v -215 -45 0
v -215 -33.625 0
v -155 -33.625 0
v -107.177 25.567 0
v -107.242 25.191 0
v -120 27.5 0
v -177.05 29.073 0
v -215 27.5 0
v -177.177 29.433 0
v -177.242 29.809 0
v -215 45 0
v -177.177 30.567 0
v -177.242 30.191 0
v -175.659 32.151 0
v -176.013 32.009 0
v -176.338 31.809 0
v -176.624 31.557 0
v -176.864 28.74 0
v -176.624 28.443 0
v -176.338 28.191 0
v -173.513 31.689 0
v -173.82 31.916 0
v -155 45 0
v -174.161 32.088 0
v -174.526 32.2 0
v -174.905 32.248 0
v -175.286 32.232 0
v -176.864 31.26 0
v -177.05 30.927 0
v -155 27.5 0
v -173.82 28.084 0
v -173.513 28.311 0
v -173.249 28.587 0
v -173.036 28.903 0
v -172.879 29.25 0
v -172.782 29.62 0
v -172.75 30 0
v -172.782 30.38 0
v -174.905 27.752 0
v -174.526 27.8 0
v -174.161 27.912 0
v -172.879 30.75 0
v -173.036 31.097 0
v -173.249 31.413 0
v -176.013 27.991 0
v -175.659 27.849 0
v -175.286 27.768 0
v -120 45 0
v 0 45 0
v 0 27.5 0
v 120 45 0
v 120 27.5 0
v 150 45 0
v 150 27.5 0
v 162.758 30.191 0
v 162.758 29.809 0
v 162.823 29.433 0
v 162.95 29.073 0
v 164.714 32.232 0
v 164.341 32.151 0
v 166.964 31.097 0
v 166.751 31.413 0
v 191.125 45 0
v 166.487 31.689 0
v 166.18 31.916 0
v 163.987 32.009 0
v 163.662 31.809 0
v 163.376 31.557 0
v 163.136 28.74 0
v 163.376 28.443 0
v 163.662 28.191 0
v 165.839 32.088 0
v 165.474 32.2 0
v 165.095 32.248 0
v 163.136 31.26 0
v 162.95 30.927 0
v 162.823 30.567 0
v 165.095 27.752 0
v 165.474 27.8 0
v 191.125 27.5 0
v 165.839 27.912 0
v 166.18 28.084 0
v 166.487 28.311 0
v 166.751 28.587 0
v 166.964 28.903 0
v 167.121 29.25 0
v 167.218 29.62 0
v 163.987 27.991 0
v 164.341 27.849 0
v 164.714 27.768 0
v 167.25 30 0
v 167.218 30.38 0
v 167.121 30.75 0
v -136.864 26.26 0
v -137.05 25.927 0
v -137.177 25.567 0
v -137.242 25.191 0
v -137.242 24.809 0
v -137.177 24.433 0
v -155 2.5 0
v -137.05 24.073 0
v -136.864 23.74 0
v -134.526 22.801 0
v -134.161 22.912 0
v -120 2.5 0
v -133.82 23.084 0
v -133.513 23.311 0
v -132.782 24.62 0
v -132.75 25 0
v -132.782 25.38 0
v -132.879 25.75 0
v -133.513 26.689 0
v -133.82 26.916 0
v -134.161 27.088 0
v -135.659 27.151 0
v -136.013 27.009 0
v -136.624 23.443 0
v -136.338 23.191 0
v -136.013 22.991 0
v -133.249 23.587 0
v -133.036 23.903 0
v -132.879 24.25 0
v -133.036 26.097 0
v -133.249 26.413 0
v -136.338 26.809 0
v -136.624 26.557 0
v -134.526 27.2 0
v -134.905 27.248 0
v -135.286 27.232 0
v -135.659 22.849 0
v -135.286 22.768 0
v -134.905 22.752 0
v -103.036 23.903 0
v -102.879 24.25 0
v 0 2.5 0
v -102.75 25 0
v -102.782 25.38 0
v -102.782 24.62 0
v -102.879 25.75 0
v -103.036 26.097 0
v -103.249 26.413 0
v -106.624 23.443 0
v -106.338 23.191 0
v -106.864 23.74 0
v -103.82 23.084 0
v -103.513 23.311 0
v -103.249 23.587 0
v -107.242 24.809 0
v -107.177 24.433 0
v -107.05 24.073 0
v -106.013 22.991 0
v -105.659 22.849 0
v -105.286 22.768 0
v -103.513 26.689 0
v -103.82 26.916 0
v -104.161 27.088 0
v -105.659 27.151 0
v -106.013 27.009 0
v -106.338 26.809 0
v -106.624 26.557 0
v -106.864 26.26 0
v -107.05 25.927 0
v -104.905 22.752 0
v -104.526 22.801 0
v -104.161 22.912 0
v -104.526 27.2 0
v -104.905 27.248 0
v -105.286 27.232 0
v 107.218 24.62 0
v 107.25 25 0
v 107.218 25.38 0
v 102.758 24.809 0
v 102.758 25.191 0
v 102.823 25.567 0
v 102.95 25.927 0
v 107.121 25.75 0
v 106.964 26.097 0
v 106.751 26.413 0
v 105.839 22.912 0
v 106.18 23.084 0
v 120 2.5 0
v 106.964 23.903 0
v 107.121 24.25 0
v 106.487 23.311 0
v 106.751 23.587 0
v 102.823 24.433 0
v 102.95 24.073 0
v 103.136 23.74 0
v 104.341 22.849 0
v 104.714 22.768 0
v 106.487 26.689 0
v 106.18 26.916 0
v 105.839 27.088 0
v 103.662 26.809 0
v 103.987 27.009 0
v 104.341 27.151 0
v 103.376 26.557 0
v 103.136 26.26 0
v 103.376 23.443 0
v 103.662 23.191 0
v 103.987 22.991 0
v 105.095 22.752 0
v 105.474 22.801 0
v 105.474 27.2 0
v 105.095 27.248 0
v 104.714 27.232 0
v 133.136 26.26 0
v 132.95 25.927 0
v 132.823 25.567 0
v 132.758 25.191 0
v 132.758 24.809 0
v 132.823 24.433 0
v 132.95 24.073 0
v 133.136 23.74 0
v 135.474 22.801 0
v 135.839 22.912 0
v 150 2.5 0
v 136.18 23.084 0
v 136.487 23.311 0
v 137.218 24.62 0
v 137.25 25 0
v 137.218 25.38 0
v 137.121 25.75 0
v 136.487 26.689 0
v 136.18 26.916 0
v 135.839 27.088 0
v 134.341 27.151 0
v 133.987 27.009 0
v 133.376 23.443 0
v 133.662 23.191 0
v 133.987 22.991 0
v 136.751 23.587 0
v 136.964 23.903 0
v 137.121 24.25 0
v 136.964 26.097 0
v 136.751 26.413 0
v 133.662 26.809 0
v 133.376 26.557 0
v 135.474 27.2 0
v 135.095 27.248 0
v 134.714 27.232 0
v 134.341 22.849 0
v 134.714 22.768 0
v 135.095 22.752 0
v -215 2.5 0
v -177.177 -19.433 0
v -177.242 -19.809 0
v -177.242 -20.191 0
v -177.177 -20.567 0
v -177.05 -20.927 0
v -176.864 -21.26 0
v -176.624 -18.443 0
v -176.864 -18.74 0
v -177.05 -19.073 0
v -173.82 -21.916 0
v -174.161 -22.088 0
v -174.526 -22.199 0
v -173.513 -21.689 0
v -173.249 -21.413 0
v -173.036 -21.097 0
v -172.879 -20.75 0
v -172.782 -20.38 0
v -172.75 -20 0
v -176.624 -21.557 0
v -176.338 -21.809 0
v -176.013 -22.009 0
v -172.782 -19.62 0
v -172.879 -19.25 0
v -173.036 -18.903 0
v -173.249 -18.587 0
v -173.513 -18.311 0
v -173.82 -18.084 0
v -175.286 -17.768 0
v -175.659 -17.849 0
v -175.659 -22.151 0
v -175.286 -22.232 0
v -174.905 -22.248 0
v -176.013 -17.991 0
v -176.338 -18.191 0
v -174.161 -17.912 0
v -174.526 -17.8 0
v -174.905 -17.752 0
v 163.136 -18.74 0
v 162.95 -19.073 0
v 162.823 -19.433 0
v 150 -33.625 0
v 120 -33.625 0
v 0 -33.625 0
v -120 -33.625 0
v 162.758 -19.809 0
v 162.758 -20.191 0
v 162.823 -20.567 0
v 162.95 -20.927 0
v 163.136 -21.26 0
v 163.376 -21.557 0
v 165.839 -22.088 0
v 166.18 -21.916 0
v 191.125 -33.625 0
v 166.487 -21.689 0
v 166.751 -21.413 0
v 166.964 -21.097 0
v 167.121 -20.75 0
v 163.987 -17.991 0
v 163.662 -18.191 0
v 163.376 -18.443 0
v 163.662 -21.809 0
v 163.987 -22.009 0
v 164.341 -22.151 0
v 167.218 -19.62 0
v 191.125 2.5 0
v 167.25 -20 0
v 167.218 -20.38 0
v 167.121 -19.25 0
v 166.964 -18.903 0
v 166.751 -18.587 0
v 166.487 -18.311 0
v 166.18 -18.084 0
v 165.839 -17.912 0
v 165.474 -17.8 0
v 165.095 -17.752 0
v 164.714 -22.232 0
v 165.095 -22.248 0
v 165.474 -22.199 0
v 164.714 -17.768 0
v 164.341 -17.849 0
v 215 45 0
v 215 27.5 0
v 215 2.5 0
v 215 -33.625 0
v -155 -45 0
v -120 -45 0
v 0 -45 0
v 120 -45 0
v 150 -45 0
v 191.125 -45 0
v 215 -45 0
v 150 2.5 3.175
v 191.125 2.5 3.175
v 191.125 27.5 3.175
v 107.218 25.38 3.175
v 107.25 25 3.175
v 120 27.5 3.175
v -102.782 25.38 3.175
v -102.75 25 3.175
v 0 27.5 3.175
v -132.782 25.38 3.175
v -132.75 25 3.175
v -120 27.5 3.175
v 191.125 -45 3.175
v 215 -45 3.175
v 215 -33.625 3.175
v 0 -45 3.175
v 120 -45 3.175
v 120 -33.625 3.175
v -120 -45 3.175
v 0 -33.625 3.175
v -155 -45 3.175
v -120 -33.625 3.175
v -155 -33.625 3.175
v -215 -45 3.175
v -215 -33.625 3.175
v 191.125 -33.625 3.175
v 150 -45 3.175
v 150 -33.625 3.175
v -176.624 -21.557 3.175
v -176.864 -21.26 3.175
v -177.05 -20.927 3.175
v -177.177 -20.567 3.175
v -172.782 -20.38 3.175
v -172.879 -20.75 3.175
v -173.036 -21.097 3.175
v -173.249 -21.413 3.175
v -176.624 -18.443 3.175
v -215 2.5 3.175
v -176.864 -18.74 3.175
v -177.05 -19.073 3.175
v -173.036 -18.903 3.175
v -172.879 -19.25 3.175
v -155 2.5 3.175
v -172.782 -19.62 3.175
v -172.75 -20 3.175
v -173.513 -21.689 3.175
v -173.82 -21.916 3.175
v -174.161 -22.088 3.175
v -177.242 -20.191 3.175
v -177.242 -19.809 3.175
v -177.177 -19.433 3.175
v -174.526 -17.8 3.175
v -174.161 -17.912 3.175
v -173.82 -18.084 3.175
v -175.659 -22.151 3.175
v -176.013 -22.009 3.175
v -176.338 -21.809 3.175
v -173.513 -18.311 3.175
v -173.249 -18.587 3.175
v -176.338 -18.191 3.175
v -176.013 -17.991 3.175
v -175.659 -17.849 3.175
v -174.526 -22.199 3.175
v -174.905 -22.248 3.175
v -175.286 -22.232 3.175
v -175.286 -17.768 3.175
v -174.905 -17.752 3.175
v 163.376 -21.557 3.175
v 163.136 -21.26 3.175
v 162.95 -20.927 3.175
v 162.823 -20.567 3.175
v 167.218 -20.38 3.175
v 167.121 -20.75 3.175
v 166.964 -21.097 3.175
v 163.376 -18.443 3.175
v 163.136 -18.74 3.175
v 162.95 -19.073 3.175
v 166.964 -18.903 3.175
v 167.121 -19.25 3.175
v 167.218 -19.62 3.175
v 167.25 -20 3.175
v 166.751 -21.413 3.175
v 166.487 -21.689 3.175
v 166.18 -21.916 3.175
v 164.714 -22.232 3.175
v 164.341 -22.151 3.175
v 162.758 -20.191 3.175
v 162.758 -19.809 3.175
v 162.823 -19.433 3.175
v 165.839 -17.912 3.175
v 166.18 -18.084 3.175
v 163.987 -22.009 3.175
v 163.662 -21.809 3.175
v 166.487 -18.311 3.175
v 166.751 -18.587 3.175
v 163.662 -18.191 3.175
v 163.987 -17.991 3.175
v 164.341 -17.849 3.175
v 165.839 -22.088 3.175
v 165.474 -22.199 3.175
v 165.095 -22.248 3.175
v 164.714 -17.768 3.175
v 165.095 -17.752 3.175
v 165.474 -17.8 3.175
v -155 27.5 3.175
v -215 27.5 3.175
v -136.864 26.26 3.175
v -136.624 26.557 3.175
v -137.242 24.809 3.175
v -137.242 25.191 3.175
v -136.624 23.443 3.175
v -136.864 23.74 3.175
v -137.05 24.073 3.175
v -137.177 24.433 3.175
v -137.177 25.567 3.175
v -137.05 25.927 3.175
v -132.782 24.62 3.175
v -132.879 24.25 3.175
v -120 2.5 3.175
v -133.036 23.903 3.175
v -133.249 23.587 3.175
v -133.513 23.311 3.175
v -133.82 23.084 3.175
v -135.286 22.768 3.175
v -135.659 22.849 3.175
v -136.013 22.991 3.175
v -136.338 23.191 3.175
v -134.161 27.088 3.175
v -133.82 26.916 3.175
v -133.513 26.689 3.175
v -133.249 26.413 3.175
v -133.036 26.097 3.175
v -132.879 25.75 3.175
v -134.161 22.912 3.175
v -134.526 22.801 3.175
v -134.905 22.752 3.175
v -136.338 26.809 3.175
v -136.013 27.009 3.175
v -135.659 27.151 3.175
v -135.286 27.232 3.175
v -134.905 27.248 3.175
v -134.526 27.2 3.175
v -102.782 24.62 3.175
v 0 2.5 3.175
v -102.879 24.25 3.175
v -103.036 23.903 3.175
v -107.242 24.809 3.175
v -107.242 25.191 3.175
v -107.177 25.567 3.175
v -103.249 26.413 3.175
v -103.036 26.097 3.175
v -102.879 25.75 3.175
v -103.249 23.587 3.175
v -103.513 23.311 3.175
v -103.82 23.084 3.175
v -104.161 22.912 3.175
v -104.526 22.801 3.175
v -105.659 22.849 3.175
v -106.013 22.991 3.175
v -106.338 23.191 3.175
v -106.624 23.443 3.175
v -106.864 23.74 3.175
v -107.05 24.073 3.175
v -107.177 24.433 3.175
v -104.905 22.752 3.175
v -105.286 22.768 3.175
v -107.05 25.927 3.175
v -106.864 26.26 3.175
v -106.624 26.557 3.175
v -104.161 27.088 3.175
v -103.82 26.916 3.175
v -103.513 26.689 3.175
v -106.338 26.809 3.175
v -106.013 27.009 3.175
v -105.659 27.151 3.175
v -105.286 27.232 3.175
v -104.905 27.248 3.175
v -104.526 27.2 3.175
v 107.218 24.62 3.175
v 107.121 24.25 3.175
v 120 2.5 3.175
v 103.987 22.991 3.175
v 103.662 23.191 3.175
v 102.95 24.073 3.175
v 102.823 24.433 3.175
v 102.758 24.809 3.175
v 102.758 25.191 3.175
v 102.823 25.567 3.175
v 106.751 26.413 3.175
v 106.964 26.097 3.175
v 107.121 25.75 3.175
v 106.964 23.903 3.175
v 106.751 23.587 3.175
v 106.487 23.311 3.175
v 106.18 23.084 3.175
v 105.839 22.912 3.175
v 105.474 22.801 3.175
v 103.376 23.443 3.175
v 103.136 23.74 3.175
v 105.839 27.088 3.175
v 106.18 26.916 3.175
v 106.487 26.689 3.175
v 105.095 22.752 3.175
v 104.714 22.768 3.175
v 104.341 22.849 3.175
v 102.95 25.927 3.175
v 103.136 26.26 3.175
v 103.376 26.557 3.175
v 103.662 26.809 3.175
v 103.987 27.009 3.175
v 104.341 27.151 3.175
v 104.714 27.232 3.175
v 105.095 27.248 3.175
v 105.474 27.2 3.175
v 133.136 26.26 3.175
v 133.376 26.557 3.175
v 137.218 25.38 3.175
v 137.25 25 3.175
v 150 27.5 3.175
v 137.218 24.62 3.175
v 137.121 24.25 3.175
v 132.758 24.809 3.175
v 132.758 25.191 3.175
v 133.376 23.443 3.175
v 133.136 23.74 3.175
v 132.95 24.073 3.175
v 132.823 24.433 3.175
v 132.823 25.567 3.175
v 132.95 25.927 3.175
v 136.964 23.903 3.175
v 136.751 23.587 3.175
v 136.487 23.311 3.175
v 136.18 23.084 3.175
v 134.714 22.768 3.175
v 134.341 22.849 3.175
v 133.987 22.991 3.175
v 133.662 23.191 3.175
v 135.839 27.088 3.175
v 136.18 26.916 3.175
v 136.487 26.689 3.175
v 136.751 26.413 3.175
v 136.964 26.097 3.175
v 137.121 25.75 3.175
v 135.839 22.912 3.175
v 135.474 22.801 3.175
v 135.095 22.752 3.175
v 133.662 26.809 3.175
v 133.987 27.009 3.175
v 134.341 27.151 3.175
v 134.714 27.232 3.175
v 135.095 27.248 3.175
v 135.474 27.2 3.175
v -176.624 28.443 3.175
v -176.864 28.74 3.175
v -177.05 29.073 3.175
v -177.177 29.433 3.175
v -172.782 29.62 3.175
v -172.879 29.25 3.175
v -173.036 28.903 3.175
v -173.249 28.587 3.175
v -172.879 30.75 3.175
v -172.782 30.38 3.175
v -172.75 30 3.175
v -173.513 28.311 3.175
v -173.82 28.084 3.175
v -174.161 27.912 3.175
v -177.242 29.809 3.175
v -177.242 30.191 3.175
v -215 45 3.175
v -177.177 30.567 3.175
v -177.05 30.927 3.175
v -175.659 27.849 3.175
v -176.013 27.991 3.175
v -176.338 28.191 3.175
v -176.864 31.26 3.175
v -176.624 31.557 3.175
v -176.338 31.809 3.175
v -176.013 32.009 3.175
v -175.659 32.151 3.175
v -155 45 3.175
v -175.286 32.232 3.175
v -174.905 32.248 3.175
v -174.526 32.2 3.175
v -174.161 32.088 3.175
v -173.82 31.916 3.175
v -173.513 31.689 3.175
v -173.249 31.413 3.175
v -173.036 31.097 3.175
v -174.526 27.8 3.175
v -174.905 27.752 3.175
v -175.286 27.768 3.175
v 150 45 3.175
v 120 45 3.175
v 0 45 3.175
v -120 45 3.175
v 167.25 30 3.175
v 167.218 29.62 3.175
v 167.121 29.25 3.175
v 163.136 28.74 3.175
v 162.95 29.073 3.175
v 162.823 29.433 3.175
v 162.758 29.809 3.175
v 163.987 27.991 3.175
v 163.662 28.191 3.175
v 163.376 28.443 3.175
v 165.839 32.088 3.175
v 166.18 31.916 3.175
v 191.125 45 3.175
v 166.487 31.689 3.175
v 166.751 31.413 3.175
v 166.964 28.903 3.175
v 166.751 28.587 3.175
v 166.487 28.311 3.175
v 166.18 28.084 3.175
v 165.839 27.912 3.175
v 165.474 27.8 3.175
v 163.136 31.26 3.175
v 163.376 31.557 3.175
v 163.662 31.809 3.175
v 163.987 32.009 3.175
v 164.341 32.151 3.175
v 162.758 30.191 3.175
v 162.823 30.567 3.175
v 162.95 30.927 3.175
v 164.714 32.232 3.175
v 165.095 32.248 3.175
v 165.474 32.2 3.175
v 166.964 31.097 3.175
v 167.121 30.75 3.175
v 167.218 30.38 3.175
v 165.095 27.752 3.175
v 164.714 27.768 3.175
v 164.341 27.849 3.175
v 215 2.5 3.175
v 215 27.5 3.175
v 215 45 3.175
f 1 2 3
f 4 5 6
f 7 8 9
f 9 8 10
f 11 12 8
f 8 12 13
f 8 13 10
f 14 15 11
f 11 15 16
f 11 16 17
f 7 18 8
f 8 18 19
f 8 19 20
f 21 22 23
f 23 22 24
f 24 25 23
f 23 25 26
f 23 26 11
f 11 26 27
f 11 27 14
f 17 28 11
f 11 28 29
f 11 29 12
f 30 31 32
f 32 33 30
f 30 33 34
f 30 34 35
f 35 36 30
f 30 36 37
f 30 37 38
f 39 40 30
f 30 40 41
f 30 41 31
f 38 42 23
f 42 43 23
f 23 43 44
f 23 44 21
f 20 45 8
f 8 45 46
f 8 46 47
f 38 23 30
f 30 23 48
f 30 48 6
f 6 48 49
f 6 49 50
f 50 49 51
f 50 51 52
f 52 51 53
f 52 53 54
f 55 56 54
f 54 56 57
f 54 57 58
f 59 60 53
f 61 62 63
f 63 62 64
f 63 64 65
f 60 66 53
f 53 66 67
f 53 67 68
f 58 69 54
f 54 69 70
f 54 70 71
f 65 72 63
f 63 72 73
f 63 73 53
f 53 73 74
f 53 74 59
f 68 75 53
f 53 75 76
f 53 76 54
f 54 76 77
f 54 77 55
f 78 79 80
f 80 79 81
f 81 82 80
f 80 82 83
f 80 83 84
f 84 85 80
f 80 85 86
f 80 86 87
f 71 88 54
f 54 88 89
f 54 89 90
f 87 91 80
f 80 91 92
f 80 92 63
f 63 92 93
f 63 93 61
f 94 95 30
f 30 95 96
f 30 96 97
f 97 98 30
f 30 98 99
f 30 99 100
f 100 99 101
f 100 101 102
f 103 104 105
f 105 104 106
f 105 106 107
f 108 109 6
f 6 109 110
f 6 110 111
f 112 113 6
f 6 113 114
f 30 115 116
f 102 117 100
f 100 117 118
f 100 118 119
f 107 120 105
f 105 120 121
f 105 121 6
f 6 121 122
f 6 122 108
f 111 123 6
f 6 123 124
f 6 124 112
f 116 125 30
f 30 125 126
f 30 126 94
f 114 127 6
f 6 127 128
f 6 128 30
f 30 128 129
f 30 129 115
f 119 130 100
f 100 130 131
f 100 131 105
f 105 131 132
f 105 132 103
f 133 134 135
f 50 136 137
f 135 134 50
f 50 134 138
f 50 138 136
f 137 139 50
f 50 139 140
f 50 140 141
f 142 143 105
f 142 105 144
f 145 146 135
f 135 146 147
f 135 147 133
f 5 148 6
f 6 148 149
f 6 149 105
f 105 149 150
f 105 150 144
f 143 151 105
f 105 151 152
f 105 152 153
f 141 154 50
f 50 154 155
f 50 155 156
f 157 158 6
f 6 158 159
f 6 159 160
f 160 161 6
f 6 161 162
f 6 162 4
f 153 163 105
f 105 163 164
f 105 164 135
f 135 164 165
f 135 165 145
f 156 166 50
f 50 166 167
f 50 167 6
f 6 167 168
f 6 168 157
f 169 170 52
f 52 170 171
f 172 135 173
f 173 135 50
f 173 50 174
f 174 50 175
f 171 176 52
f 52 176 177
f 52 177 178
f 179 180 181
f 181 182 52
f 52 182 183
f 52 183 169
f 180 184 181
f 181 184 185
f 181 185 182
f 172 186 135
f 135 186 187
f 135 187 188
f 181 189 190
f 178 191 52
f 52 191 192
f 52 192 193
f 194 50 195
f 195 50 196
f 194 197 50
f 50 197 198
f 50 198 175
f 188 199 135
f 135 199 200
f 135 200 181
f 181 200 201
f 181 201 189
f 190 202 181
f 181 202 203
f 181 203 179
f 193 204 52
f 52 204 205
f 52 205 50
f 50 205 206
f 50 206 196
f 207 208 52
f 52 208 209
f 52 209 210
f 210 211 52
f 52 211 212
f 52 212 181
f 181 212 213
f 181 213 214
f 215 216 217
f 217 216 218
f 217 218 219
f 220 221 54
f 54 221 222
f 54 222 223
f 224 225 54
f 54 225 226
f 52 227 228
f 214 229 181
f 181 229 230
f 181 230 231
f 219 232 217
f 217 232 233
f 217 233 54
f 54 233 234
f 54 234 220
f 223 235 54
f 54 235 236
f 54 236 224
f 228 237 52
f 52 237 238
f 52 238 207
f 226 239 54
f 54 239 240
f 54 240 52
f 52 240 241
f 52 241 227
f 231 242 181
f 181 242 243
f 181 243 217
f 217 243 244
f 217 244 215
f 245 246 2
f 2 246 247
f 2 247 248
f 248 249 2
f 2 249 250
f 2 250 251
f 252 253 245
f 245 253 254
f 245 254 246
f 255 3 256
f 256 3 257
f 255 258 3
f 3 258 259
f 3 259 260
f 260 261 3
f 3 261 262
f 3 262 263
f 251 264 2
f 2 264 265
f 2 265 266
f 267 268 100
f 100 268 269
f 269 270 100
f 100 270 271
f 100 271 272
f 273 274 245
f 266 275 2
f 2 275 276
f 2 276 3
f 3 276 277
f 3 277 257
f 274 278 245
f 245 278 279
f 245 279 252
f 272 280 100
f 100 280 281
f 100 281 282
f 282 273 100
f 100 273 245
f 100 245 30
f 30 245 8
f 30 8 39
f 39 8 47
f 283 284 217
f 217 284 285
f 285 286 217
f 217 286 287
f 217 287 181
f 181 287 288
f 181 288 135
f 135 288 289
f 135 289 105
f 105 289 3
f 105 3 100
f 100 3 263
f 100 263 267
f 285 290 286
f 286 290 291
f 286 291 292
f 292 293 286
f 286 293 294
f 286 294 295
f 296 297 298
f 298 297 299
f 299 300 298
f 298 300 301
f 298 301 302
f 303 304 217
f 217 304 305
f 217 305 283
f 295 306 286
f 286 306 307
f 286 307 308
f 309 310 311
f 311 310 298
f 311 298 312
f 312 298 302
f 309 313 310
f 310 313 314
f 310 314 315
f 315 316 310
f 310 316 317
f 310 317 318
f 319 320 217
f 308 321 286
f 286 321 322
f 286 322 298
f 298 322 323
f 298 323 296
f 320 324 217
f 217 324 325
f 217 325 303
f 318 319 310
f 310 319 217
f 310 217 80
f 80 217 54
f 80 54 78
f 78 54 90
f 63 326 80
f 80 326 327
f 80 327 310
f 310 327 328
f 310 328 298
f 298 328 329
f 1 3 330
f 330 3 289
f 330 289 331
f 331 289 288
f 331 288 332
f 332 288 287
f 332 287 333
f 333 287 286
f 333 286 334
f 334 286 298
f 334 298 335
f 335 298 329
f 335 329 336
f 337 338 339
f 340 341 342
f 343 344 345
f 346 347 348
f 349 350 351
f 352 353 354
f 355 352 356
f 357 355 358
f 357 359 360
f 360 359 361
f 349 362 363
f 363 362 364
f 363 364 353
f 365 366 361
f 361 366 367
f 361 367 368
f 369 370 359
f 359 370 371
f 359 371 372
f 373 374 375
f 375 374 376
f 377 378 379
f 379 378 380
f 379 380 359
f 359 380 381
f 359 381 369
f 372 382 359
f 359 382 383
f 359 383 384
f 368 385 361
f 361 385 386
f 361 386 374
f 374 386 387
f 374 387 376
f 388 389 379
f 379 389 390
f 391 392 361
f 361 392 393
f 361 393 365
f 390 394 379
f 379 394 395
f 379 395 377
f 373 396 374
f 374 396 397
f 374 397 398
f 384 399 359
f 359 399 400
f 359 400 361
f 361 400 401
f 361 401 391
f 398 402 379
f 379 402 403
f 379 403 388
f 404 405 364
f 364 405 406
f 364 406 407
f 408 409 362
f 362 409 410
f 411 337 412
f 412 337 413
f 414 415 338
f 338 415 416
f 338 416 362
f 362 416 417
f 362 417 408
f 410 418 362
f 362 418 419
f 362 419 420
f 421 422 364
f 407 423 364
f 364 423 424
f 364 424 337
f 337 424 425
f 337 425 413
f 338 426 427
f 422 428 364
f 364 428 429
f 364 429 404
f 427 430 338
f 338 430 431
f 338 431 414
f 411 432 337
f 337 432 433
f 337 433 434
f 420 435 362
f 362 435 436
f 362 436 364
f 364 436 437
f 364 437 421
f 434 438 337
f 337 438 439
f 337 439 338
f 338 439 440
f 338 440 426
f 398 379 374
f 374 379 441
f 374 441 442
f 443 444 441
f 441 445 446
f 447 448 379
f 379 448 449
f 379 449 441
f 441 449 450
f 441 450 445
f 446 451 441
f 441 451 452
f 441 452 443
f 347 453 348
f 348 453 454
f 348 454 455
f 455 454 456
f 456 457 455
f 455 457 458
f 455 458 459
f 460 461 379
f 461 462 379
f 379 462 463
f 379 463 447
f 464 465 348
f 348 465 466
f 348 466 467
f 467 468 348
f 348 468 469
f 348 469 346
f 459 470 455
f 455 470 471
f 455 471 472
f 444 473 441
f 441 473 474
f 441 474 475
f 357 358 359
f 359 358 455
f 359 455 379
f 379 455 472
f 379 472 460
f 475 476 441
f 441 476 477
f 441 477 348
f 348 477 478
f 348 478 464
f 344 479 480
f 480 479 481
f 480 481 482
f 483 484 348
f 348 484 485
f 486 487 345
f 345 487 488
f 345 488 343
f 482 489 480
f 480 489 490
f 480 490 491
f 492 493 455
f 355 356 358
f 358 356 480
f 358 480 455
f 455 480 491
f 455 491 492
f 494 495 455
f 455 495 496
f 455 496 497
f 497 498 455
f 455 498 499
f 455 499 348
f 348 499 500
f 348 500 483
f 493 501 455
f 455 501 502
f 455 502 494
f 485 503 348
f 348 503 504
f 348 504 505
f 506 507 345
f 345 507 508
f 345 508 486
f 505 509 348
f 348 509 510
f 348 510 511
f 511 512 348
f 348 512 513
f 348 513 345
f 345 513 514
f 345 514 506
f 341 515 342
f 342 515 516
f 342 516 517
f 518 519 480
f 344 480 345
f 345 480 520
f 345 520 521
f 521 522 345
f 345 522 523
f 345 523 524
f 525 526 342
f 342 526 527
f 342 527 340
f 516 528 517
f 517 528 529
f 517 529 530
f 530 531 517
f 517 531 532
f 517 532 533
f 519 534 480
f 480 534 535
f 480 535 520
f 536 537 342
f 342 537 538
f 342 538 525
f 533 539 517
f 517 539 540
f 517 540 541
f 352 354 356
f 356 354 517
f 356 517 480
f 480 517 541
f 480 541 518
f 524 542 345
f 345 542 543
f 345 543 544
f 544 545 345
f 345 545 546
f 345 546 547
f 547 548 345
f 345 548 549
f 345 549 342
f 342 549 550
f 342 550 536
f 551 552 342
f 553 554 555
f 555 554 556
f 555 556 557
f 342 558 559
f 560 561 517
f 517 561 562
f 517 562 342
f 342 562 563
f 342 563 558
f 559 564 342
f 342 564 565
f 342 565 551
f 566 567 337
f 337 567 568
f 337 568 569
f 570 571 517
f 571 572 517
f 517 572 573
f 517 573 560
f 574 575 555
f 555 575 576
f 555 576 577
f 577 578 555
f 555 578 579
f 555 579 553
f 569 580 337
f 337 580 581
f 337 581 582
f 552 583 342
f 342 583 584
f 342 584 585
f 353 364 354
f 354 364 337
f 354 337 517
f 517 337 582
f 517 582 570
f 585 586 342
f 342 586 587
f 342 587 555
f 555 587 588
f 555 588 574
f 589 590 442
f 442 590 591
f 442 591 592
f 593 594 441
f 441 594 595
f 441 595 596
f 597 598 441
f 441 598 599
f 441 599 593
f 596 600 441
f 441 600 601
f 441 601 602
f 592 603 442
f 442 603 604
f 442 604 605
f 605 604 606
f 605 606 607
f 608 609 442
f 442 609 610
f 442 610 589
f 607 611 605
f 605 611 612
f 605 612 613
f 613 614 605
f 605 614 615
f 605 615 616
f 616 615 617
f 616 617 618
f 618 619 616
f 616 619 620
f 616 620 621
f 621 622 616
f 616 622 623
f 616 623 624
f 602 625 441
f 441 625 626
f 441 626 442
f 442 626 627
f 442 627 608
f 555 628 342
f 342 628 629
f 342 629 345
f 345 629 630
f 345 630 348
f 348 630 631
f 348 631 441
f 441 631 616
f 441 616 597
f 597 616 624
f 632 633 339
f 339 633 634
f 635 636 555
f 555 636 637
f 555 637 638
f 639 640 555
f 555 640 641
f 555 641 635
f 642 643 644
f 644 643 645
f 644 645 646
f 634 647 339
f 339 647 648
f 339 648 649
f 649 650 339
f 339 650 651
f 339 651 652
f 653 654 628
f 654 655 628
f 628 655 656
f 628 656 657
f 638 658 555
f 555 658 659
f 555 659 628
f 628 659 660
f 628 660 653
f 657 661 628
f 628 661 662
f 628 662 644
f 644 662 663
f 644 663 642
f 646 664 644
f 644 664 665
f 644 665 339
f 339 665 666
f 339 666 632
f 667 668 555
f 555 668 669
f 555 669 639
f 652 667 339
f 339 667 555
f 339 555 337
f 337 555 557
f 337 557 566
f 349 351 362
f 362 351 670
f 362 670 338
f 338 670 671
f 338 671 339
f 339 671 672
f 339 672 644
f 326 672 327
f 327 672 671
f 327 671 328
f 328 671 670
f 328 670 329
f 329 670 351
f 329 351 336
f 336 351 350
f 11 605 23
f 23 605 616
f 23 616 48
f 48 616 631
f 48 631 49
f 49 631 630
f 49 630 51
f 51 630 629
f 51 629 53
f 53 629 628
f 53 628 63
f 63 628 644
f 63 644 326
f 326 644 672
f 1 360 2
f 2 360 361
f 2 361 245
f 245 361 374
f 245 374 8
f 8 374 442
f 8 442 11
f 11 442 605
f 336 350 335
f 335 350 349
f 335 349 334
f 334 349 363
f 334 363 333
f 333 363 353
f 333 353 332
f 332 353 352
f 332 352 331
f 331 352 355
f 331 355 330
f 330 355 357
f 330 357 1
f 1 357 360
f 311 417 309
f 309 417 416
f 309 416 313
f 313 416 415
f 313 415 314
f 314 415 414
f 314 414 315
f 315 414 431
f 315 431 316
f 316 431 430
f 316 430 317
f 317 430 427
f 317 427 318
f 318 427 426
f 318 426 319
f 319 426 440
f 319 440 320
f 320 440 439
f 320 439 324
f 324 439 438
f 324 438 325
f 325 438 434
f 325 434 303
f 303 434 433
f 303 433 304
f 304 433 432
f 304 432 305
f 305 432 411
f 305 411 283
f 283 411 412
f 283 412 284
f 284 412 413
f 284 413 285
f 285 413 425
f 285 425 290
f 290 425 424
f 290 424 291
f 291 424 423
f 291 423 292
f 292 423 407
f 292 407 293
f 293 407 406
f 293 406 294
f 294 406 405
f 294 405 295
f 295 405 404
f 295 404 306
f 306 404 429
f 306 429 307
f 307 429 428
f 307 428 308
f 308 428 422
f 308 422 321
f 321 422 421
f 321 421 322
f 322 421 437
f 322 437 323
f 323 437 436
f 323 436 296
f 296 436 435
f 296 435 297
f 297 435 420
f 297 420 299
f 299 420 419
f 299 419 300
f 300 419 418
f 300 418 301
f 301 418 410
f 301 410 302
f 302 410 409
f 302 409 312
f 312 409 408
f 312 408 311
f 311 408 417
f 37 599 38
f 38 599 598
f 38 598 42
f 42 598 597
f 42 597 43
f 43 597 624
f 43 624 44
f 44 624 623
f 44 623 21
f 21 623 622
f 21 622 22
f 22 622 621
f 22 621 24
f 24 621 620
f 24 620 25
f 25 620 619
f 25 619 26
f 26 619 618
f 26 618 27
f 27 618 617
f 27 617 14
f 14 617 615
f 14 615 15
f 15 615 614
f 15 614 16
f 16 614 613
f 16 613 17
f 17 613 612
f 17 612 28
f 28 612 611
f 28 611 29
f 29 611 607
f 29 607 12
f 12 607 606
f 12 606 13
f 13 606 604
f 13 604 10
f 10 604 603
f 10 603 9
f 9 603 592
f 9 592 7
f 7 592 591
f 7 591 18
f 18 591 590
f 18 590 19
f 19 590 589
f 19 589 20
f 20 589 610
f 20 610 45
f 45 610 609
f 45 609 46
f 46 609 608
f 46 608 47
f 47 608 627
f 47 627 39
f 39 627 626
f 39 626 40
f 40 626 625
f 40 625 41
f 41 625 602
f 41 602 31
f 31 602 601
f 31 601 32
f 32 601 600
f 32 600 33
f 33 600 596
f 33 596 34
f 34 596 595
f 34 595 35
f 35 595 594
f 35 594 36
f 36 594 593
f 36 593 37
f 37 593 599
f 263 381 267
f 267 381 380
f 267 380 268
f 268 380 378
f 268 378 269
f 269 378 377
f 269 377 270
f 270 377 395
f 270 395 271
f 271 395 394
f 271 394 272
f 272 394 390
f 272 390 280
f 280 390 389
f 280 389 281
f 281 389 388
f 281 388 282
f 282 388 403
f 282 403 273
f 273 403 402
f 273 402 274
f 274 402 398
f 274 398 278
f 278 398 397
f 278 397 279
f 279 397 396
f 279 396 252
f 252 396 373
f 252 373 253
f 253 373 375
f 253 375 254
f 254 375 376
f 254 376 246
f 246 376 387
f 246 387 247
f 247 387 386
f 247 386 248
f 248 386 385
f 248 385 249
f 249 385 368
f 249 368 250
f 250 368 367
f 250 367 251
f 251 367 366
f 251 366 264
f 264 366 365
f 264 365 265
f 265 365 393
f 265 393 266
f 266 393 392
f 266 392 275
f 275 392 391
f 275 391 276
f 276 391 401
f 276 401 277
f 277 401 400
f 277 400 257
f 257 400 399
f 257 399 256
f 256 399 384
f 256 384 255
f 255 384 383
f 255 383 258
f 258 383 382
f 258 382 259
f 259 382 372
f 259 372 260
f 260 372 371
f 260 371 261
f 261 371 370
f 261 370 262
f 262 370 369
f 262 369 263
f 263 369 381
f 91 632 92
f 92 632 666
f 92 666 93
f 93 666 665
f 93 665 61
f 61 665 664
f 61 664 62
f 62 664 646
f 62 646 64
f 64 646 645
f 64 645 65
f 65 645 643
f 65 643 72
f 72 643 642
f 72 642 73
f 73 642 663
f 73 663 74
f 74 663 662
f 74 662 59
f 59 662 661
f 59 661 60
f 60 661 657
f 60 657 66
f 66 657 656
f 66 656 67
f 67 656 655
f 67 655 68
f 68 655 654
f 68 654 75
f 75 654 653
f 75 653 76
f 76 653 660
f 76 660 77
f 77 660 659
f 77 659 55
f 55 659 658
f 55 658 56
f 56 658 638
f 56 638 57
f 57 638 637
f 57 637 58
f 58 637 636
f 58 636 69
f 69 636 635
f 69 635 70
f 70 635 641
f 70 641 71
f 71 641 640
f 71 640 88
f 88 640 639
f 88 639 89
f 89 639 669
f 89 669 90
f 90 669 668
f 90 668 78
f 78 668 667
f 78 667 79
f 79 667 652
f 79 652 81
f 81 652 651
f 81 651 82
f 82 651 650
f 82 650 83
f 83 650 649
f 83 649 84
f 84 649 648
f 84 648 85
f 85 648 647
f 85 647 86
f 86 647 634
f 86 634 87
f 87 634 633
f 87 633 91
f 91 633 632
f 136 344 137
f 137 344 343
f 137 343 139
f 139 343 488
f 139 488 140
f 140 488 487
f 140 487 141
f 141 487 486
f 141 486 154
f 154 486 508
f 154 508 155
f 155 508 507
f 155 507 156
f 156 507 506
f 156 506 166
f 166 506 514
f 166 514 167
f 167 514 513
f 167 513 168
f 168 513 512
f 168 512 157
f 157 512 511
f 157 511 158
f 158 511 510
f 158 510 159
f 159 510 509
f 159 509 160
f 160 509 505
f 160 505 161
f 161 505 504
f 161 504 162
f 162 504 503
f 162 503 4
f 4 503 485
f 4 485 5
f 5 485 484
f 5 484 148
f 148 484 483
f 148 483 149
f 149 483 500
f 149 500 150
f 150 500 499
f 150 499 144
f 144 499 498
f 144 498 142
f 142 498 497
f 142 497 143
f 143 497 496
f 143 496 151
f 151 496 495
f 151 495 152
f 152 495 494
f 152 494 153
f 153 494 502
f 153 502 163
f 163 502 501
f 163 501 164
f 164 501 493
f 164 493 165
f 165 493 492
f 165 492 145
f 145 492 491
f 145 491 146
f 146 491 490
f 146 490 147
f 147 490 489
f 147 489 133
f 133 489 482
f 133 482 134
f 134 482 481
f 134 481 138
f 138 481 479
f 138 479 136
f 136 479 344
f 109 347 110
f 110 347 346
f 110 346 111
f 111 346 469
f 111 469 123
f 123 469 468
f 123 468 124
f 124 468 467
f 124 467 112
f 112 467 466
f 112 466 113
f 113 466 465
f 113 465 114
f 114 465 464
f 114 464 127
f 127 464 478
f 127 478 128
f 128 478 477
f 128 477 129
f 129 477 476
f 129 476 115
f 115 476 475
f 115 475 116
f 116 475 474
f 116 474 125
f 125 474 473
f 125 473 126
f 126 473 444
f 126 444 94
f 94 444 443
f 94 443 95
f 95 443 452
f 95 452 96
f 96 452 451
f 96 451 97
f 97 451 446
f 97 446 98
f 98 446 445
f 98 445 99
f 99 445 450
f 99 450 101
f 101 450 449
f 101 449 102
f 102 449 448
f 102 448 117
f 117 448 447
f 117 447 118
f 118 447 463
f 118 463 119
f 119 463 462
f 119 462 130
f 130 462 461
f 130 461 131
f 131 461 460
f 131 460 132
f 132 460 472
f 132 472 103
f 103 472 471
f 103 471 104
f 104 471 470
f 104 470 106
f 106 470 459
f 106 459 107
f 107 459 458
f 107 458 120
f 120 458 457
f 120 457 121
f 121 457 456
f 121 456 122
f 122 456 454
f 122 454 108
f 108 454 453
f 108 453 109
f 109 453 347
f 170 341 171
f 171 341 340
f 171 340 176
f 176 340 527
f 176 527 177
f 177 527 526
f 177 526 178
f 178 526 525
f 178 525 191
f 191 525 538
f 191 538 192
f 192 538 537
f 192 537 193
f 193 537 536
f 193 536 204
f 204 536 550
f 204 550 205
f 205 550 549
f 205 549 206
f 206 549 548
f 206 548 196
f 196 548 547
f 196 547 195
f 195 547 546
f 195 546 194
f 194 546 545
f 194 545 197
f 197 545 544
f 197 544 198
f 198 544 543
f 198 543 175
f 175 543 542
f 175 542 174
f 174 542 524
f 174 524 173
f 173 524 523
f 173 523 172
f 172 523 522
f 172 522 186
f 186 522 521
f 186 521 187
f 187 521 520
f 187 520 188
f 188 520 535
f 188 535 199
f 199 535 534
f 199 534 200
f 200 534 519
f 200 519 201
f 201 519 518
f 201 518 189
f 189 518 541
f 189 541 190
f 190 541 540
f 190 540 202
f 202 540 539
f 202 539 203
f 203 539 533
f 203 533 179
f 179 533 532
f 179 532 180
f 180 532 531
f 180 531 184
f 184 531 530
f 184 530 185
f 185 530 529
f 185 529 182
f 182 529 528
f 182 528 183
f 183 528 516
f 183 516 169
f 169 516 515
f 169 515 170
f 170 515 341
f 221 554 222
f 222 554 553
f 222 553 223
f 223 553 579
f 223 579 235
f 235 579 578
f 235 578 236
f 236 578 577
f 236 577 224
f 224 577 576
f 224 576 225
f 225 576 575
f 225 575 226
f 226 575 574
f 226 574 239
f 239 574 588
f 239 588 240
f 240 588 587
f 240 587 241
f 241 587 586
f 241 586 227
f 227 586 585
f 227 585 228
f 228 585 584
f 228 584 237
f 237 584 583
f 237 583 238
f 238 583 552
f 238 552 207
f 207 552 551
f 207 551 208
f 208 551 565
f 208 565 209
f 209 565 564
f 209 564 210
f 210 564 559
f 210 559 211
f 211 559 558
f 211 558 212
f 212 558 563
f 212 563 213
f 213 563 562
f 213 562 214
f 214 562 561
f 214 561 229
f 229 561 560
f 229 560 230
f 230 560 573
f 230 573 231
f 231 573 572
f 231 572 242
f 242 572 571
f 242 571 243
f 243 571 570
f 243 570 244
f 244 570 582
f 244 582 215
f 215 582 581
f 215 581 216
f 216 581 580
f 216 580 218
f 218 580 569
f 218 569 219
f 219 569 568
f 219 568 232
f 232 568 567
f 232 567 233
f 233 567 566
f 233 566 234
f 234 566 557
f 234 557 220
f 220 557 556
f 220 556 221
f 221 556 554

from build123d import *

# Parameters (mm, degrees)
SKETCH1_W            = 430
SKETCH1_H            = 90
BOSS_EXTRUDE1_DEPTH  = 3.175
M4_CLEARANCE_HOLE1_D = 4.5
M4_CLEARANCE_HOLE2_D = 4.5


with BuildPart() as part:
    # Sketch1 → Boss-Extrude1 (new body)
    with BuildSketch(Plane.XY):
        Rectangle(SKETCH1_W, SKETCH1_H)
    extrude(amount=BOSS_EXTRUDE1_DEPTH)

    # M4 Clearance Hole1 (through all)
    with Locations(Plane.XY.offset(3.175)):
        with Locations((165, 30), (-175, -20), (-175, 30), (165, -20)):
            Hole(M4_CLEARANCE_HOLE1_D / 2)

    # M4 Clearance Hole2 (through all)
    with Locations(Plane.XY.offset(3.175)):
        with Locations((-135, 25), (-105, 25)):
            m4_clearance_hole2 = Hole(M4_CLEARANCE_HOLE2_D / 2)

    # Mirror1: M4 Clearance Hole2 across plane
    add(m4_clearance_hole2.mirror(Plane(origin=(0, 0, 0), x_dir=(0, 0, 1), z_dir=(1, 0, 0))), mode=Mode.SUBTRACT)


solid = part.part
